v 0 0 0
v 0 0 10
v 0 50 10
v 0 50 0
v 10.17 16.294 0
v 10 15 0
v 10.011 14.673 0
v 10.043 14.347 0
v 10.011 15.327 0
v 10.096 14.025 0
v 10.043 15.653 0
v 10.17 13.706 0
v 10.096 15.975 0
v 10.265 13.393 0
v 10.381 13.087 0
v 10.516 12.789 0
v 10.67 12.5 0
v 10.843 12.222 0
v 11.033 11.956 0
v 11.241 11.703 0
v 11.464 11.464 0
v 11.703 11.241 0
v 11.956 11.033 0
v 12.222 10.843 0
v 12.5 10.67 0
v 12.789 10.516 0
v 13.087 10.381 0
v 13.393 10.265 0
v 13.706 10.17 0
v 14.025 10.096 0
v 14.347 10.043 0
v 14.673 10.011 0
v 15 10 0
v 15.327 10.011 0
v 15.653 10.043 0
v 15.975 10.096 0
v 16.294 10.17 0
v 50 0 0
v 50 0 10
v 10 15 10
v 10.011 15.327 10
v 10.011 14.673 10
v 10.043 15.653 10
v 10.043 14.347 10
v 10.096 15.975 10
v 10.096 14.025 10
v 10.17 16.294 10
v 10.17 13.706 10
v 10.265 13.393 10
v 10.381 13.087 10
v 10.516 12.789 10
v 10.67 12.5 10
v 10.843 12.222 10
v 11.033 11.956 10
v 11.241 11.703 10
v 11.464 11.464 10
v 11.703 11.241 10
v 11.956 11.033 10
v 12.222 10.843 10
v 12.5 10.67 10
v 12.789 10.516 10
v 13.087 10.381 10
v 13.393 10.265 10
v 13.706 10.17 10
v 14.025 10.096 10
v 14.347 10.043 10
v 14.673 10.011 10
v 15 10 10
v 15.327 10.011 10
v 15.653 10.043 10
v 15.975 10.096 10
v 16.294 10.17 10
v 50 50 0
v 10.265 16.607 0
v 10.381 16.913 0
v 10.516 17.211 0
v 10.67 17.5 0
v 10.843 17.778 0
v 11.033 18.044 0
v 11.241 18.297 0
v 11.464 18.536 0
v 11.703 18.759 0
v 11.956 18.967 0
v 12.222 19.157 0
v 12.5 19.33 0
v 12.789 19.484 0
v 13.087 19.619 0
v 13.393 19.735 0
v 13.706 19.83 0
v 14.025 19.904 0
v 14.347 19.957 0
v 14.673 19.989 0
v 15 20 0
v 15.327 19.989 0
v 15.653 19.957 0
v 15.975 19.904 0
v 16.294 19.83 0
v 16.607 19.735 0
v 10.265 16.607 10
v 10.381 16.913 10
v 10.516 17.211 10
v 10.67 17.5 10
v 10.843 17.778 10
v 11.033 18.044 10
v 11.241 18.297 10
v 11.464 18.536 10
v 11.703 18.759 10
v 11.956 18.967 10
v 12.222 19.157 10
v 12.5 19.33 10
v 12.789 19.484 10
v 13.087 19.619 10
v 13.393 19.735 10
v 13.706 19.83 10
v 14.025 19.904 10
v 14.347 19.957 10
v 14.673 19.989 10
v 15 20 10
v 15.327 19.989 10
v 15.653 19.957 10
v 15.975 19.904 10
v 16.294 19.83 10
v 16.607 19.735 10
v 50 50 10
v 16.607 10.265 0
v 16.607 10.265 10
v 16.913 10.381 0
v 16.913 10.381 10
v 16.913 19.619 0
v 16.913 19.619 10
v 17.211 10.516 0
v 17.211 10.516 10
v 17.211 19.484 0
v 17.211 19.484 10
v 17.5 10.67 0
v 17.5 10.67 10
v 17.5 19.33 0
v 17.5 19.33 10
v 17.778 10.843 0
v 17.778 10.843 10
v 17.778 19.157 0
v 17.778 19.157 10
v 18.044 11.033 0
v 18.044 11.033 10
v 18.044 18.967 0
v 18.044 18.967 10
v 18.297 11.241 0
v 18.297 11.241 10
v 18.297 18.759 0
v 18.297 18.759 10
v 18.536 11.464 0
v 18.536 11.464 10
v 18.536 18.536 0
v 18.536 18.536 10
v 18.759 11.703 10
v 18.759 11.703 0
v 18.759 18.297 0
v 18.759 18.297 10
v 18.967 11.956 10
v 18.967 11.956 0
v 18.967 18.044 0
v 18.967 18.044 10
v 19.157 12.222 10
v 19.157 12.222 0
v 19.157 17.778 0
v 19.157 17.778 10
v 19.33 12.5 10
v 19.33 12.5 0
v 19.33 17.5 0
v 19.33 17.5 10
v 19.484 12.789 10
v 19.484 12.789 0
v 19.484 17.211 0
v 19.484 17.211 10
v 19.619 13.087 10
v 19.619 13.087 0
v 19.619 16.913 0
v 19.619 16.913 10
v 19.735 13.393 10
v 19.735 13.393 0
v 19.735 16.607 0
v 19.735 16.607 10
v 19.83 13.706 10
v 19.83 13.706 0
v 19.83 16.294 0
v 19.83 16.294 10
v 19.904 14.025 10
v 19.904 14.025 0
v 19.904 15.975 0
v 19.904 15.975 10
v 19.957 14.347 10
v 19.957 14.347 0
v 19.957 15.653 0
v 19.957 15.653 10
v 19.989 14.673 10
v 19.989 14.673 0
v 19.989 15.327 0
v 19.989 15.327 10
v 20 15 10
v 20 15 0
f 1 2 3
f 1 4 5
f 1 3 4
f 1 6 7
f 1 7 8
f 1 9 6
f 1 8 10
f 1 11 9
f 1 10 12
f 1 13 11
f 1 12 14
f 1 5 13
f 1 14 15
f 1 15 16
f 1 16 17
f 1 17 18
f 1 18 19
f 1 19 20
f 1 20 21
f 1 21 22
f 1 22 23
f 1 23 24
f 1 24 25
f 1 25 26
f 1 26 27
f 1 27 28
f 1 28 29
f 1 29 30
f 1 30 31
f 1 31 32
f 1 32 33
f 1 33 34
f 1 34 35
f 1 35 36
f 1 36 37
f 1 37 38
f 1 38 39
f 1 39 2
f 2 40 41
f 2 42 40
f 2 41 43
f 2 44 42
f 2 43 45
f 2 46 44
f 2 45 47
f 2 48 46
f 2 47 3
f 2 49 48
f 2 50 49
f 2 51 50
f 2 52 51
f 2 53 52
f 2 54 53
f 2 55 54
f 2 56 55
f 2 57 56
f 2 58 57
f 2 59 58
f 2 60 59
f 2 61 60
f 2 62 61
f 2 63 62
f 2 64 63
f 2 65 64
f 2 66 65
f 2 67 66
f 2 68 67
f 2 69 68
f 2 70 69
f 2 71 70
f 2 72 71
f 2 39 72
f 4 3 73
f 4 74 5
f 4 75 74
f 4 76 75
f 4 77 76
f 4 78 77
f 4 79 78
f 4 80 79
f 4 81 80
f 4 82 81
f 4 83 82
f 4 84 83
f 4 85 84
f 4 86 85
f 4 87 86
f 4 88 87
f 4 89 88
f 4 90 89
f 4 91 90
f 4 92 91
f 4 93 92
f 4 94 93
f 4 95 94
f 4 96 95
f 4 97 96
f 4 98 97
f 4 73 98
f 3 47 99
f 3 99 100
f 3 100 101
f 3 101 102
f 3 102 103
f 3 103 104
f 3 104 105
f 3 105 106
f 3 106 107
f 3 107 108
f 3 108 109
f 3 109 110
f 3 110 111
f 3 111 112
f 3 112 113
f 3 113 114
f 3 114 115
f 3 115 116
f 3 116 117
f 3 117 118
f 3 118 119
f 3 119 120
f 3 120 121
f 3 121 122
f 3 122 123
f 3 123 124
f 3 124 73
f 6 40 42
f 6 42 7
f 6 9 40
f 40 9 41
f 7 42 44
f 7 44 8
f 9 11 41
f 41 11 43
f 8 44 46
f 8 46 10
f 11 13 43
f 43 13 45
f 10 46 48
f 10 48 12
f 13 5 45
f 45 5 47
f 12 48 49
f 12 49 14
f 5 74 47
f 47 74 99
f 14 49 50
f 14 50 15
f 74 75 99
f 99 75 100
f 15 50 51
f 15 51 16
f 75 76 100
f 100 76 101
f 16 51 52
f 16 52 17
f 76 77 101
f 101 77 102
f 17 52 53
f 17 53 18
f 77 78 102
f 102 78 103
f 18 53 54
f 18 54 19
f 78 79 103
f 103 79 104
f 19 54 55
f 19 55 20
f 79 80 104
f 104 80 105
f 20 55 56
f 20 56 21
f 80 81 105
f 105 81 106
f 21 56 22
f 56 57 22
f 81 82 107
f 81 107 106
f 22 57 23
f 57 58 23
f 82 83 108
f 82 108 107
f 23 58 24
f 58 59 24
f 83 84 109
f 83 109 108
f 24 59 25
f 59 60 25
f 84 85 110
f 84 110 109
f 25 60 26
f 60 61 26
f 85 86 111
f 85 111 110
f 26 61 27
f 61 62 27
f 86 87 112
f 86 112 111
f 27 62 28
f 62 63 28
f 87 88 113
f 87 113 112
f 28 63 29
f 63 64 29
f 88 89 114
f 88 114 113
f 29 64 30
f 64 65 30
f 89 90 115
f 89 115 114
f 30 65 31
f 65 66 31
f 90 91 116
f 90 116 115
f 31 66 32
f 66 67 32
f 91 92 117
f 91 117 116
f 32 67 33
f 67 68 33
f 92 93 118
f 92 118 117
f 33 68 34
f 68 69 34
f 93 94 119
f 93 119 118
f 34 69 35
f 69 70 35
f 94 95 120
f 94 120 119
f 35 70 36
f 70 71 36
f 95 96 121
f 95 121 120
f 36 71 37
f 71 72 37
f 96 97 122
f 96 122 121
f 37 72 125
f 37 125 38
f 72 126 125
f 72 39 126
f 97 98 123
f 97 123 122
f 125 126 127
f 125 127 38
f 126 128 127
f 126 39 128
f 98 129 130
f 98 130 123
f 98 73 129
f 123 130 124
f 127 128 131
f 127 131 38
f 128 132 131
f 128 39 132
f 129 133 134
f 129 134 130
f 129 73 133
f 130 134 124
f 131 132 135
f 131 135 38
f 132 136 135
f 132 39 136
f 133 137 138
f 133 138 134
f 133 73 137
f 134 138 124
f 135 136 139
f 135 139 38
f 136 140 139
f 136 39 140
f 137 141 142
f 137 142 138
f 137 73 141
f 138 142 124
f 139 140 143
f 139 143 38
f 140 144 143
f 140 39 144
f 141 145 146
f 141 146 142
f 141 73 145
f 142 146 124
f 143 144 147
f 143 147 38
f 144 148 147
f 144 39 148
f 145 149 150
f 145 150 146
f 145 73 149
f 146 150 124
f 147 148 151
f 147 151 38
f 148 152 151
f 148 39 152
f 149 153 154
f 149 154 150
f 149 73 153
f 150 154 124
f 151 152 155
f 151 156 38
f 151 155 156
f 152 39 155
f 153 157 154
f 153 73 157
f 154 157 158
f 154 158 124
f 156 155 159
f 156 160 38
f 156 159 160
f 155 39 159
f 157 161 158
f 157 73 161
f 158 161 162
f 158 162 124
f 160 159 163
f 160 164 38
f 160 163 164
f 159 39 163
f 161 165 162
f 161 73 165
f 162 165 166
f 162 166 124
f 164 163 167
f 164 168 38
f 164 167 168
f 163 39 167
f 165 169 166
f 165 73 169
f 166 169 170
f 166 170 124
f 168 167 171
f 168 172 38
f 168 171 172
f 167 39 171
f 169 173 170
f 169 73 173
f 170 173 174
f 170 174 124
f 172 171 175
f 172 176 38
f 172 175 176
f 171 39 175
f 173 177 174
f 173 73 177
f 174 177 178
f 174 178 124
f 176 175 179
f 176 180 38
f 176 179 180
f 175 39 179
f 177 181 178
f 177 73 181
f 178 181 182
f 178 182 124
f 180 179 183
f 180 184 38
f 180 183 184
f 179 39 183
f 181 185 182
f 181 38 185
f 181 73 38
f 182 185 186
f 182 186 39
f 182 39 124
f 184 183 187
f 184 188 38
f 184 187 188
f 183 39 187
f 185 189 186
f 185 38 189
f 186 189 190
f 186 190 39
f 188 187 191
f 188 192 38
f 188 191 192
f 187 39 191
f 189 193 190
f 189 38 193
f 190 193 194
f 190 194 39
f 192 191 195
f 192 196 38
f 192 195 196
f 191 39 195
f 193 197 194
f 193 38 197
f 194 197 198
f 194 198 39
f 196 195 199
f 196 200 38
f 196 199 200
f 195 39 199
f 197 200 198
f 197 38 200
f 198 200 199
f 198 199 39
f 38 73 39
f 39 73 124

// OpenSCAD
// _dbgctr / body
// 3D AI Designer V1.1 Geometry Engine uretimi - tum olculer mm.

// ============ PARAMETERS ============
width = 50;
depth = 50;
height = 10;
$fn = 96;  // dairesel yuzey cozunurlugu (bbox dogrulugu icin)
hole_h1_dia = 10;
hole_h1_x = 15;
hole_h1_y = 15;

// ============ GEOMETRY + BOOLEAN OPERATIONS ============
difference() { cube([50, 50, 10]); translate([15, 15, -1]) cylinder(d = 10, h = 12); }

// ============ EXPORT ============
// Export harici arac ile yapilir (Export-Stl.ps1).
